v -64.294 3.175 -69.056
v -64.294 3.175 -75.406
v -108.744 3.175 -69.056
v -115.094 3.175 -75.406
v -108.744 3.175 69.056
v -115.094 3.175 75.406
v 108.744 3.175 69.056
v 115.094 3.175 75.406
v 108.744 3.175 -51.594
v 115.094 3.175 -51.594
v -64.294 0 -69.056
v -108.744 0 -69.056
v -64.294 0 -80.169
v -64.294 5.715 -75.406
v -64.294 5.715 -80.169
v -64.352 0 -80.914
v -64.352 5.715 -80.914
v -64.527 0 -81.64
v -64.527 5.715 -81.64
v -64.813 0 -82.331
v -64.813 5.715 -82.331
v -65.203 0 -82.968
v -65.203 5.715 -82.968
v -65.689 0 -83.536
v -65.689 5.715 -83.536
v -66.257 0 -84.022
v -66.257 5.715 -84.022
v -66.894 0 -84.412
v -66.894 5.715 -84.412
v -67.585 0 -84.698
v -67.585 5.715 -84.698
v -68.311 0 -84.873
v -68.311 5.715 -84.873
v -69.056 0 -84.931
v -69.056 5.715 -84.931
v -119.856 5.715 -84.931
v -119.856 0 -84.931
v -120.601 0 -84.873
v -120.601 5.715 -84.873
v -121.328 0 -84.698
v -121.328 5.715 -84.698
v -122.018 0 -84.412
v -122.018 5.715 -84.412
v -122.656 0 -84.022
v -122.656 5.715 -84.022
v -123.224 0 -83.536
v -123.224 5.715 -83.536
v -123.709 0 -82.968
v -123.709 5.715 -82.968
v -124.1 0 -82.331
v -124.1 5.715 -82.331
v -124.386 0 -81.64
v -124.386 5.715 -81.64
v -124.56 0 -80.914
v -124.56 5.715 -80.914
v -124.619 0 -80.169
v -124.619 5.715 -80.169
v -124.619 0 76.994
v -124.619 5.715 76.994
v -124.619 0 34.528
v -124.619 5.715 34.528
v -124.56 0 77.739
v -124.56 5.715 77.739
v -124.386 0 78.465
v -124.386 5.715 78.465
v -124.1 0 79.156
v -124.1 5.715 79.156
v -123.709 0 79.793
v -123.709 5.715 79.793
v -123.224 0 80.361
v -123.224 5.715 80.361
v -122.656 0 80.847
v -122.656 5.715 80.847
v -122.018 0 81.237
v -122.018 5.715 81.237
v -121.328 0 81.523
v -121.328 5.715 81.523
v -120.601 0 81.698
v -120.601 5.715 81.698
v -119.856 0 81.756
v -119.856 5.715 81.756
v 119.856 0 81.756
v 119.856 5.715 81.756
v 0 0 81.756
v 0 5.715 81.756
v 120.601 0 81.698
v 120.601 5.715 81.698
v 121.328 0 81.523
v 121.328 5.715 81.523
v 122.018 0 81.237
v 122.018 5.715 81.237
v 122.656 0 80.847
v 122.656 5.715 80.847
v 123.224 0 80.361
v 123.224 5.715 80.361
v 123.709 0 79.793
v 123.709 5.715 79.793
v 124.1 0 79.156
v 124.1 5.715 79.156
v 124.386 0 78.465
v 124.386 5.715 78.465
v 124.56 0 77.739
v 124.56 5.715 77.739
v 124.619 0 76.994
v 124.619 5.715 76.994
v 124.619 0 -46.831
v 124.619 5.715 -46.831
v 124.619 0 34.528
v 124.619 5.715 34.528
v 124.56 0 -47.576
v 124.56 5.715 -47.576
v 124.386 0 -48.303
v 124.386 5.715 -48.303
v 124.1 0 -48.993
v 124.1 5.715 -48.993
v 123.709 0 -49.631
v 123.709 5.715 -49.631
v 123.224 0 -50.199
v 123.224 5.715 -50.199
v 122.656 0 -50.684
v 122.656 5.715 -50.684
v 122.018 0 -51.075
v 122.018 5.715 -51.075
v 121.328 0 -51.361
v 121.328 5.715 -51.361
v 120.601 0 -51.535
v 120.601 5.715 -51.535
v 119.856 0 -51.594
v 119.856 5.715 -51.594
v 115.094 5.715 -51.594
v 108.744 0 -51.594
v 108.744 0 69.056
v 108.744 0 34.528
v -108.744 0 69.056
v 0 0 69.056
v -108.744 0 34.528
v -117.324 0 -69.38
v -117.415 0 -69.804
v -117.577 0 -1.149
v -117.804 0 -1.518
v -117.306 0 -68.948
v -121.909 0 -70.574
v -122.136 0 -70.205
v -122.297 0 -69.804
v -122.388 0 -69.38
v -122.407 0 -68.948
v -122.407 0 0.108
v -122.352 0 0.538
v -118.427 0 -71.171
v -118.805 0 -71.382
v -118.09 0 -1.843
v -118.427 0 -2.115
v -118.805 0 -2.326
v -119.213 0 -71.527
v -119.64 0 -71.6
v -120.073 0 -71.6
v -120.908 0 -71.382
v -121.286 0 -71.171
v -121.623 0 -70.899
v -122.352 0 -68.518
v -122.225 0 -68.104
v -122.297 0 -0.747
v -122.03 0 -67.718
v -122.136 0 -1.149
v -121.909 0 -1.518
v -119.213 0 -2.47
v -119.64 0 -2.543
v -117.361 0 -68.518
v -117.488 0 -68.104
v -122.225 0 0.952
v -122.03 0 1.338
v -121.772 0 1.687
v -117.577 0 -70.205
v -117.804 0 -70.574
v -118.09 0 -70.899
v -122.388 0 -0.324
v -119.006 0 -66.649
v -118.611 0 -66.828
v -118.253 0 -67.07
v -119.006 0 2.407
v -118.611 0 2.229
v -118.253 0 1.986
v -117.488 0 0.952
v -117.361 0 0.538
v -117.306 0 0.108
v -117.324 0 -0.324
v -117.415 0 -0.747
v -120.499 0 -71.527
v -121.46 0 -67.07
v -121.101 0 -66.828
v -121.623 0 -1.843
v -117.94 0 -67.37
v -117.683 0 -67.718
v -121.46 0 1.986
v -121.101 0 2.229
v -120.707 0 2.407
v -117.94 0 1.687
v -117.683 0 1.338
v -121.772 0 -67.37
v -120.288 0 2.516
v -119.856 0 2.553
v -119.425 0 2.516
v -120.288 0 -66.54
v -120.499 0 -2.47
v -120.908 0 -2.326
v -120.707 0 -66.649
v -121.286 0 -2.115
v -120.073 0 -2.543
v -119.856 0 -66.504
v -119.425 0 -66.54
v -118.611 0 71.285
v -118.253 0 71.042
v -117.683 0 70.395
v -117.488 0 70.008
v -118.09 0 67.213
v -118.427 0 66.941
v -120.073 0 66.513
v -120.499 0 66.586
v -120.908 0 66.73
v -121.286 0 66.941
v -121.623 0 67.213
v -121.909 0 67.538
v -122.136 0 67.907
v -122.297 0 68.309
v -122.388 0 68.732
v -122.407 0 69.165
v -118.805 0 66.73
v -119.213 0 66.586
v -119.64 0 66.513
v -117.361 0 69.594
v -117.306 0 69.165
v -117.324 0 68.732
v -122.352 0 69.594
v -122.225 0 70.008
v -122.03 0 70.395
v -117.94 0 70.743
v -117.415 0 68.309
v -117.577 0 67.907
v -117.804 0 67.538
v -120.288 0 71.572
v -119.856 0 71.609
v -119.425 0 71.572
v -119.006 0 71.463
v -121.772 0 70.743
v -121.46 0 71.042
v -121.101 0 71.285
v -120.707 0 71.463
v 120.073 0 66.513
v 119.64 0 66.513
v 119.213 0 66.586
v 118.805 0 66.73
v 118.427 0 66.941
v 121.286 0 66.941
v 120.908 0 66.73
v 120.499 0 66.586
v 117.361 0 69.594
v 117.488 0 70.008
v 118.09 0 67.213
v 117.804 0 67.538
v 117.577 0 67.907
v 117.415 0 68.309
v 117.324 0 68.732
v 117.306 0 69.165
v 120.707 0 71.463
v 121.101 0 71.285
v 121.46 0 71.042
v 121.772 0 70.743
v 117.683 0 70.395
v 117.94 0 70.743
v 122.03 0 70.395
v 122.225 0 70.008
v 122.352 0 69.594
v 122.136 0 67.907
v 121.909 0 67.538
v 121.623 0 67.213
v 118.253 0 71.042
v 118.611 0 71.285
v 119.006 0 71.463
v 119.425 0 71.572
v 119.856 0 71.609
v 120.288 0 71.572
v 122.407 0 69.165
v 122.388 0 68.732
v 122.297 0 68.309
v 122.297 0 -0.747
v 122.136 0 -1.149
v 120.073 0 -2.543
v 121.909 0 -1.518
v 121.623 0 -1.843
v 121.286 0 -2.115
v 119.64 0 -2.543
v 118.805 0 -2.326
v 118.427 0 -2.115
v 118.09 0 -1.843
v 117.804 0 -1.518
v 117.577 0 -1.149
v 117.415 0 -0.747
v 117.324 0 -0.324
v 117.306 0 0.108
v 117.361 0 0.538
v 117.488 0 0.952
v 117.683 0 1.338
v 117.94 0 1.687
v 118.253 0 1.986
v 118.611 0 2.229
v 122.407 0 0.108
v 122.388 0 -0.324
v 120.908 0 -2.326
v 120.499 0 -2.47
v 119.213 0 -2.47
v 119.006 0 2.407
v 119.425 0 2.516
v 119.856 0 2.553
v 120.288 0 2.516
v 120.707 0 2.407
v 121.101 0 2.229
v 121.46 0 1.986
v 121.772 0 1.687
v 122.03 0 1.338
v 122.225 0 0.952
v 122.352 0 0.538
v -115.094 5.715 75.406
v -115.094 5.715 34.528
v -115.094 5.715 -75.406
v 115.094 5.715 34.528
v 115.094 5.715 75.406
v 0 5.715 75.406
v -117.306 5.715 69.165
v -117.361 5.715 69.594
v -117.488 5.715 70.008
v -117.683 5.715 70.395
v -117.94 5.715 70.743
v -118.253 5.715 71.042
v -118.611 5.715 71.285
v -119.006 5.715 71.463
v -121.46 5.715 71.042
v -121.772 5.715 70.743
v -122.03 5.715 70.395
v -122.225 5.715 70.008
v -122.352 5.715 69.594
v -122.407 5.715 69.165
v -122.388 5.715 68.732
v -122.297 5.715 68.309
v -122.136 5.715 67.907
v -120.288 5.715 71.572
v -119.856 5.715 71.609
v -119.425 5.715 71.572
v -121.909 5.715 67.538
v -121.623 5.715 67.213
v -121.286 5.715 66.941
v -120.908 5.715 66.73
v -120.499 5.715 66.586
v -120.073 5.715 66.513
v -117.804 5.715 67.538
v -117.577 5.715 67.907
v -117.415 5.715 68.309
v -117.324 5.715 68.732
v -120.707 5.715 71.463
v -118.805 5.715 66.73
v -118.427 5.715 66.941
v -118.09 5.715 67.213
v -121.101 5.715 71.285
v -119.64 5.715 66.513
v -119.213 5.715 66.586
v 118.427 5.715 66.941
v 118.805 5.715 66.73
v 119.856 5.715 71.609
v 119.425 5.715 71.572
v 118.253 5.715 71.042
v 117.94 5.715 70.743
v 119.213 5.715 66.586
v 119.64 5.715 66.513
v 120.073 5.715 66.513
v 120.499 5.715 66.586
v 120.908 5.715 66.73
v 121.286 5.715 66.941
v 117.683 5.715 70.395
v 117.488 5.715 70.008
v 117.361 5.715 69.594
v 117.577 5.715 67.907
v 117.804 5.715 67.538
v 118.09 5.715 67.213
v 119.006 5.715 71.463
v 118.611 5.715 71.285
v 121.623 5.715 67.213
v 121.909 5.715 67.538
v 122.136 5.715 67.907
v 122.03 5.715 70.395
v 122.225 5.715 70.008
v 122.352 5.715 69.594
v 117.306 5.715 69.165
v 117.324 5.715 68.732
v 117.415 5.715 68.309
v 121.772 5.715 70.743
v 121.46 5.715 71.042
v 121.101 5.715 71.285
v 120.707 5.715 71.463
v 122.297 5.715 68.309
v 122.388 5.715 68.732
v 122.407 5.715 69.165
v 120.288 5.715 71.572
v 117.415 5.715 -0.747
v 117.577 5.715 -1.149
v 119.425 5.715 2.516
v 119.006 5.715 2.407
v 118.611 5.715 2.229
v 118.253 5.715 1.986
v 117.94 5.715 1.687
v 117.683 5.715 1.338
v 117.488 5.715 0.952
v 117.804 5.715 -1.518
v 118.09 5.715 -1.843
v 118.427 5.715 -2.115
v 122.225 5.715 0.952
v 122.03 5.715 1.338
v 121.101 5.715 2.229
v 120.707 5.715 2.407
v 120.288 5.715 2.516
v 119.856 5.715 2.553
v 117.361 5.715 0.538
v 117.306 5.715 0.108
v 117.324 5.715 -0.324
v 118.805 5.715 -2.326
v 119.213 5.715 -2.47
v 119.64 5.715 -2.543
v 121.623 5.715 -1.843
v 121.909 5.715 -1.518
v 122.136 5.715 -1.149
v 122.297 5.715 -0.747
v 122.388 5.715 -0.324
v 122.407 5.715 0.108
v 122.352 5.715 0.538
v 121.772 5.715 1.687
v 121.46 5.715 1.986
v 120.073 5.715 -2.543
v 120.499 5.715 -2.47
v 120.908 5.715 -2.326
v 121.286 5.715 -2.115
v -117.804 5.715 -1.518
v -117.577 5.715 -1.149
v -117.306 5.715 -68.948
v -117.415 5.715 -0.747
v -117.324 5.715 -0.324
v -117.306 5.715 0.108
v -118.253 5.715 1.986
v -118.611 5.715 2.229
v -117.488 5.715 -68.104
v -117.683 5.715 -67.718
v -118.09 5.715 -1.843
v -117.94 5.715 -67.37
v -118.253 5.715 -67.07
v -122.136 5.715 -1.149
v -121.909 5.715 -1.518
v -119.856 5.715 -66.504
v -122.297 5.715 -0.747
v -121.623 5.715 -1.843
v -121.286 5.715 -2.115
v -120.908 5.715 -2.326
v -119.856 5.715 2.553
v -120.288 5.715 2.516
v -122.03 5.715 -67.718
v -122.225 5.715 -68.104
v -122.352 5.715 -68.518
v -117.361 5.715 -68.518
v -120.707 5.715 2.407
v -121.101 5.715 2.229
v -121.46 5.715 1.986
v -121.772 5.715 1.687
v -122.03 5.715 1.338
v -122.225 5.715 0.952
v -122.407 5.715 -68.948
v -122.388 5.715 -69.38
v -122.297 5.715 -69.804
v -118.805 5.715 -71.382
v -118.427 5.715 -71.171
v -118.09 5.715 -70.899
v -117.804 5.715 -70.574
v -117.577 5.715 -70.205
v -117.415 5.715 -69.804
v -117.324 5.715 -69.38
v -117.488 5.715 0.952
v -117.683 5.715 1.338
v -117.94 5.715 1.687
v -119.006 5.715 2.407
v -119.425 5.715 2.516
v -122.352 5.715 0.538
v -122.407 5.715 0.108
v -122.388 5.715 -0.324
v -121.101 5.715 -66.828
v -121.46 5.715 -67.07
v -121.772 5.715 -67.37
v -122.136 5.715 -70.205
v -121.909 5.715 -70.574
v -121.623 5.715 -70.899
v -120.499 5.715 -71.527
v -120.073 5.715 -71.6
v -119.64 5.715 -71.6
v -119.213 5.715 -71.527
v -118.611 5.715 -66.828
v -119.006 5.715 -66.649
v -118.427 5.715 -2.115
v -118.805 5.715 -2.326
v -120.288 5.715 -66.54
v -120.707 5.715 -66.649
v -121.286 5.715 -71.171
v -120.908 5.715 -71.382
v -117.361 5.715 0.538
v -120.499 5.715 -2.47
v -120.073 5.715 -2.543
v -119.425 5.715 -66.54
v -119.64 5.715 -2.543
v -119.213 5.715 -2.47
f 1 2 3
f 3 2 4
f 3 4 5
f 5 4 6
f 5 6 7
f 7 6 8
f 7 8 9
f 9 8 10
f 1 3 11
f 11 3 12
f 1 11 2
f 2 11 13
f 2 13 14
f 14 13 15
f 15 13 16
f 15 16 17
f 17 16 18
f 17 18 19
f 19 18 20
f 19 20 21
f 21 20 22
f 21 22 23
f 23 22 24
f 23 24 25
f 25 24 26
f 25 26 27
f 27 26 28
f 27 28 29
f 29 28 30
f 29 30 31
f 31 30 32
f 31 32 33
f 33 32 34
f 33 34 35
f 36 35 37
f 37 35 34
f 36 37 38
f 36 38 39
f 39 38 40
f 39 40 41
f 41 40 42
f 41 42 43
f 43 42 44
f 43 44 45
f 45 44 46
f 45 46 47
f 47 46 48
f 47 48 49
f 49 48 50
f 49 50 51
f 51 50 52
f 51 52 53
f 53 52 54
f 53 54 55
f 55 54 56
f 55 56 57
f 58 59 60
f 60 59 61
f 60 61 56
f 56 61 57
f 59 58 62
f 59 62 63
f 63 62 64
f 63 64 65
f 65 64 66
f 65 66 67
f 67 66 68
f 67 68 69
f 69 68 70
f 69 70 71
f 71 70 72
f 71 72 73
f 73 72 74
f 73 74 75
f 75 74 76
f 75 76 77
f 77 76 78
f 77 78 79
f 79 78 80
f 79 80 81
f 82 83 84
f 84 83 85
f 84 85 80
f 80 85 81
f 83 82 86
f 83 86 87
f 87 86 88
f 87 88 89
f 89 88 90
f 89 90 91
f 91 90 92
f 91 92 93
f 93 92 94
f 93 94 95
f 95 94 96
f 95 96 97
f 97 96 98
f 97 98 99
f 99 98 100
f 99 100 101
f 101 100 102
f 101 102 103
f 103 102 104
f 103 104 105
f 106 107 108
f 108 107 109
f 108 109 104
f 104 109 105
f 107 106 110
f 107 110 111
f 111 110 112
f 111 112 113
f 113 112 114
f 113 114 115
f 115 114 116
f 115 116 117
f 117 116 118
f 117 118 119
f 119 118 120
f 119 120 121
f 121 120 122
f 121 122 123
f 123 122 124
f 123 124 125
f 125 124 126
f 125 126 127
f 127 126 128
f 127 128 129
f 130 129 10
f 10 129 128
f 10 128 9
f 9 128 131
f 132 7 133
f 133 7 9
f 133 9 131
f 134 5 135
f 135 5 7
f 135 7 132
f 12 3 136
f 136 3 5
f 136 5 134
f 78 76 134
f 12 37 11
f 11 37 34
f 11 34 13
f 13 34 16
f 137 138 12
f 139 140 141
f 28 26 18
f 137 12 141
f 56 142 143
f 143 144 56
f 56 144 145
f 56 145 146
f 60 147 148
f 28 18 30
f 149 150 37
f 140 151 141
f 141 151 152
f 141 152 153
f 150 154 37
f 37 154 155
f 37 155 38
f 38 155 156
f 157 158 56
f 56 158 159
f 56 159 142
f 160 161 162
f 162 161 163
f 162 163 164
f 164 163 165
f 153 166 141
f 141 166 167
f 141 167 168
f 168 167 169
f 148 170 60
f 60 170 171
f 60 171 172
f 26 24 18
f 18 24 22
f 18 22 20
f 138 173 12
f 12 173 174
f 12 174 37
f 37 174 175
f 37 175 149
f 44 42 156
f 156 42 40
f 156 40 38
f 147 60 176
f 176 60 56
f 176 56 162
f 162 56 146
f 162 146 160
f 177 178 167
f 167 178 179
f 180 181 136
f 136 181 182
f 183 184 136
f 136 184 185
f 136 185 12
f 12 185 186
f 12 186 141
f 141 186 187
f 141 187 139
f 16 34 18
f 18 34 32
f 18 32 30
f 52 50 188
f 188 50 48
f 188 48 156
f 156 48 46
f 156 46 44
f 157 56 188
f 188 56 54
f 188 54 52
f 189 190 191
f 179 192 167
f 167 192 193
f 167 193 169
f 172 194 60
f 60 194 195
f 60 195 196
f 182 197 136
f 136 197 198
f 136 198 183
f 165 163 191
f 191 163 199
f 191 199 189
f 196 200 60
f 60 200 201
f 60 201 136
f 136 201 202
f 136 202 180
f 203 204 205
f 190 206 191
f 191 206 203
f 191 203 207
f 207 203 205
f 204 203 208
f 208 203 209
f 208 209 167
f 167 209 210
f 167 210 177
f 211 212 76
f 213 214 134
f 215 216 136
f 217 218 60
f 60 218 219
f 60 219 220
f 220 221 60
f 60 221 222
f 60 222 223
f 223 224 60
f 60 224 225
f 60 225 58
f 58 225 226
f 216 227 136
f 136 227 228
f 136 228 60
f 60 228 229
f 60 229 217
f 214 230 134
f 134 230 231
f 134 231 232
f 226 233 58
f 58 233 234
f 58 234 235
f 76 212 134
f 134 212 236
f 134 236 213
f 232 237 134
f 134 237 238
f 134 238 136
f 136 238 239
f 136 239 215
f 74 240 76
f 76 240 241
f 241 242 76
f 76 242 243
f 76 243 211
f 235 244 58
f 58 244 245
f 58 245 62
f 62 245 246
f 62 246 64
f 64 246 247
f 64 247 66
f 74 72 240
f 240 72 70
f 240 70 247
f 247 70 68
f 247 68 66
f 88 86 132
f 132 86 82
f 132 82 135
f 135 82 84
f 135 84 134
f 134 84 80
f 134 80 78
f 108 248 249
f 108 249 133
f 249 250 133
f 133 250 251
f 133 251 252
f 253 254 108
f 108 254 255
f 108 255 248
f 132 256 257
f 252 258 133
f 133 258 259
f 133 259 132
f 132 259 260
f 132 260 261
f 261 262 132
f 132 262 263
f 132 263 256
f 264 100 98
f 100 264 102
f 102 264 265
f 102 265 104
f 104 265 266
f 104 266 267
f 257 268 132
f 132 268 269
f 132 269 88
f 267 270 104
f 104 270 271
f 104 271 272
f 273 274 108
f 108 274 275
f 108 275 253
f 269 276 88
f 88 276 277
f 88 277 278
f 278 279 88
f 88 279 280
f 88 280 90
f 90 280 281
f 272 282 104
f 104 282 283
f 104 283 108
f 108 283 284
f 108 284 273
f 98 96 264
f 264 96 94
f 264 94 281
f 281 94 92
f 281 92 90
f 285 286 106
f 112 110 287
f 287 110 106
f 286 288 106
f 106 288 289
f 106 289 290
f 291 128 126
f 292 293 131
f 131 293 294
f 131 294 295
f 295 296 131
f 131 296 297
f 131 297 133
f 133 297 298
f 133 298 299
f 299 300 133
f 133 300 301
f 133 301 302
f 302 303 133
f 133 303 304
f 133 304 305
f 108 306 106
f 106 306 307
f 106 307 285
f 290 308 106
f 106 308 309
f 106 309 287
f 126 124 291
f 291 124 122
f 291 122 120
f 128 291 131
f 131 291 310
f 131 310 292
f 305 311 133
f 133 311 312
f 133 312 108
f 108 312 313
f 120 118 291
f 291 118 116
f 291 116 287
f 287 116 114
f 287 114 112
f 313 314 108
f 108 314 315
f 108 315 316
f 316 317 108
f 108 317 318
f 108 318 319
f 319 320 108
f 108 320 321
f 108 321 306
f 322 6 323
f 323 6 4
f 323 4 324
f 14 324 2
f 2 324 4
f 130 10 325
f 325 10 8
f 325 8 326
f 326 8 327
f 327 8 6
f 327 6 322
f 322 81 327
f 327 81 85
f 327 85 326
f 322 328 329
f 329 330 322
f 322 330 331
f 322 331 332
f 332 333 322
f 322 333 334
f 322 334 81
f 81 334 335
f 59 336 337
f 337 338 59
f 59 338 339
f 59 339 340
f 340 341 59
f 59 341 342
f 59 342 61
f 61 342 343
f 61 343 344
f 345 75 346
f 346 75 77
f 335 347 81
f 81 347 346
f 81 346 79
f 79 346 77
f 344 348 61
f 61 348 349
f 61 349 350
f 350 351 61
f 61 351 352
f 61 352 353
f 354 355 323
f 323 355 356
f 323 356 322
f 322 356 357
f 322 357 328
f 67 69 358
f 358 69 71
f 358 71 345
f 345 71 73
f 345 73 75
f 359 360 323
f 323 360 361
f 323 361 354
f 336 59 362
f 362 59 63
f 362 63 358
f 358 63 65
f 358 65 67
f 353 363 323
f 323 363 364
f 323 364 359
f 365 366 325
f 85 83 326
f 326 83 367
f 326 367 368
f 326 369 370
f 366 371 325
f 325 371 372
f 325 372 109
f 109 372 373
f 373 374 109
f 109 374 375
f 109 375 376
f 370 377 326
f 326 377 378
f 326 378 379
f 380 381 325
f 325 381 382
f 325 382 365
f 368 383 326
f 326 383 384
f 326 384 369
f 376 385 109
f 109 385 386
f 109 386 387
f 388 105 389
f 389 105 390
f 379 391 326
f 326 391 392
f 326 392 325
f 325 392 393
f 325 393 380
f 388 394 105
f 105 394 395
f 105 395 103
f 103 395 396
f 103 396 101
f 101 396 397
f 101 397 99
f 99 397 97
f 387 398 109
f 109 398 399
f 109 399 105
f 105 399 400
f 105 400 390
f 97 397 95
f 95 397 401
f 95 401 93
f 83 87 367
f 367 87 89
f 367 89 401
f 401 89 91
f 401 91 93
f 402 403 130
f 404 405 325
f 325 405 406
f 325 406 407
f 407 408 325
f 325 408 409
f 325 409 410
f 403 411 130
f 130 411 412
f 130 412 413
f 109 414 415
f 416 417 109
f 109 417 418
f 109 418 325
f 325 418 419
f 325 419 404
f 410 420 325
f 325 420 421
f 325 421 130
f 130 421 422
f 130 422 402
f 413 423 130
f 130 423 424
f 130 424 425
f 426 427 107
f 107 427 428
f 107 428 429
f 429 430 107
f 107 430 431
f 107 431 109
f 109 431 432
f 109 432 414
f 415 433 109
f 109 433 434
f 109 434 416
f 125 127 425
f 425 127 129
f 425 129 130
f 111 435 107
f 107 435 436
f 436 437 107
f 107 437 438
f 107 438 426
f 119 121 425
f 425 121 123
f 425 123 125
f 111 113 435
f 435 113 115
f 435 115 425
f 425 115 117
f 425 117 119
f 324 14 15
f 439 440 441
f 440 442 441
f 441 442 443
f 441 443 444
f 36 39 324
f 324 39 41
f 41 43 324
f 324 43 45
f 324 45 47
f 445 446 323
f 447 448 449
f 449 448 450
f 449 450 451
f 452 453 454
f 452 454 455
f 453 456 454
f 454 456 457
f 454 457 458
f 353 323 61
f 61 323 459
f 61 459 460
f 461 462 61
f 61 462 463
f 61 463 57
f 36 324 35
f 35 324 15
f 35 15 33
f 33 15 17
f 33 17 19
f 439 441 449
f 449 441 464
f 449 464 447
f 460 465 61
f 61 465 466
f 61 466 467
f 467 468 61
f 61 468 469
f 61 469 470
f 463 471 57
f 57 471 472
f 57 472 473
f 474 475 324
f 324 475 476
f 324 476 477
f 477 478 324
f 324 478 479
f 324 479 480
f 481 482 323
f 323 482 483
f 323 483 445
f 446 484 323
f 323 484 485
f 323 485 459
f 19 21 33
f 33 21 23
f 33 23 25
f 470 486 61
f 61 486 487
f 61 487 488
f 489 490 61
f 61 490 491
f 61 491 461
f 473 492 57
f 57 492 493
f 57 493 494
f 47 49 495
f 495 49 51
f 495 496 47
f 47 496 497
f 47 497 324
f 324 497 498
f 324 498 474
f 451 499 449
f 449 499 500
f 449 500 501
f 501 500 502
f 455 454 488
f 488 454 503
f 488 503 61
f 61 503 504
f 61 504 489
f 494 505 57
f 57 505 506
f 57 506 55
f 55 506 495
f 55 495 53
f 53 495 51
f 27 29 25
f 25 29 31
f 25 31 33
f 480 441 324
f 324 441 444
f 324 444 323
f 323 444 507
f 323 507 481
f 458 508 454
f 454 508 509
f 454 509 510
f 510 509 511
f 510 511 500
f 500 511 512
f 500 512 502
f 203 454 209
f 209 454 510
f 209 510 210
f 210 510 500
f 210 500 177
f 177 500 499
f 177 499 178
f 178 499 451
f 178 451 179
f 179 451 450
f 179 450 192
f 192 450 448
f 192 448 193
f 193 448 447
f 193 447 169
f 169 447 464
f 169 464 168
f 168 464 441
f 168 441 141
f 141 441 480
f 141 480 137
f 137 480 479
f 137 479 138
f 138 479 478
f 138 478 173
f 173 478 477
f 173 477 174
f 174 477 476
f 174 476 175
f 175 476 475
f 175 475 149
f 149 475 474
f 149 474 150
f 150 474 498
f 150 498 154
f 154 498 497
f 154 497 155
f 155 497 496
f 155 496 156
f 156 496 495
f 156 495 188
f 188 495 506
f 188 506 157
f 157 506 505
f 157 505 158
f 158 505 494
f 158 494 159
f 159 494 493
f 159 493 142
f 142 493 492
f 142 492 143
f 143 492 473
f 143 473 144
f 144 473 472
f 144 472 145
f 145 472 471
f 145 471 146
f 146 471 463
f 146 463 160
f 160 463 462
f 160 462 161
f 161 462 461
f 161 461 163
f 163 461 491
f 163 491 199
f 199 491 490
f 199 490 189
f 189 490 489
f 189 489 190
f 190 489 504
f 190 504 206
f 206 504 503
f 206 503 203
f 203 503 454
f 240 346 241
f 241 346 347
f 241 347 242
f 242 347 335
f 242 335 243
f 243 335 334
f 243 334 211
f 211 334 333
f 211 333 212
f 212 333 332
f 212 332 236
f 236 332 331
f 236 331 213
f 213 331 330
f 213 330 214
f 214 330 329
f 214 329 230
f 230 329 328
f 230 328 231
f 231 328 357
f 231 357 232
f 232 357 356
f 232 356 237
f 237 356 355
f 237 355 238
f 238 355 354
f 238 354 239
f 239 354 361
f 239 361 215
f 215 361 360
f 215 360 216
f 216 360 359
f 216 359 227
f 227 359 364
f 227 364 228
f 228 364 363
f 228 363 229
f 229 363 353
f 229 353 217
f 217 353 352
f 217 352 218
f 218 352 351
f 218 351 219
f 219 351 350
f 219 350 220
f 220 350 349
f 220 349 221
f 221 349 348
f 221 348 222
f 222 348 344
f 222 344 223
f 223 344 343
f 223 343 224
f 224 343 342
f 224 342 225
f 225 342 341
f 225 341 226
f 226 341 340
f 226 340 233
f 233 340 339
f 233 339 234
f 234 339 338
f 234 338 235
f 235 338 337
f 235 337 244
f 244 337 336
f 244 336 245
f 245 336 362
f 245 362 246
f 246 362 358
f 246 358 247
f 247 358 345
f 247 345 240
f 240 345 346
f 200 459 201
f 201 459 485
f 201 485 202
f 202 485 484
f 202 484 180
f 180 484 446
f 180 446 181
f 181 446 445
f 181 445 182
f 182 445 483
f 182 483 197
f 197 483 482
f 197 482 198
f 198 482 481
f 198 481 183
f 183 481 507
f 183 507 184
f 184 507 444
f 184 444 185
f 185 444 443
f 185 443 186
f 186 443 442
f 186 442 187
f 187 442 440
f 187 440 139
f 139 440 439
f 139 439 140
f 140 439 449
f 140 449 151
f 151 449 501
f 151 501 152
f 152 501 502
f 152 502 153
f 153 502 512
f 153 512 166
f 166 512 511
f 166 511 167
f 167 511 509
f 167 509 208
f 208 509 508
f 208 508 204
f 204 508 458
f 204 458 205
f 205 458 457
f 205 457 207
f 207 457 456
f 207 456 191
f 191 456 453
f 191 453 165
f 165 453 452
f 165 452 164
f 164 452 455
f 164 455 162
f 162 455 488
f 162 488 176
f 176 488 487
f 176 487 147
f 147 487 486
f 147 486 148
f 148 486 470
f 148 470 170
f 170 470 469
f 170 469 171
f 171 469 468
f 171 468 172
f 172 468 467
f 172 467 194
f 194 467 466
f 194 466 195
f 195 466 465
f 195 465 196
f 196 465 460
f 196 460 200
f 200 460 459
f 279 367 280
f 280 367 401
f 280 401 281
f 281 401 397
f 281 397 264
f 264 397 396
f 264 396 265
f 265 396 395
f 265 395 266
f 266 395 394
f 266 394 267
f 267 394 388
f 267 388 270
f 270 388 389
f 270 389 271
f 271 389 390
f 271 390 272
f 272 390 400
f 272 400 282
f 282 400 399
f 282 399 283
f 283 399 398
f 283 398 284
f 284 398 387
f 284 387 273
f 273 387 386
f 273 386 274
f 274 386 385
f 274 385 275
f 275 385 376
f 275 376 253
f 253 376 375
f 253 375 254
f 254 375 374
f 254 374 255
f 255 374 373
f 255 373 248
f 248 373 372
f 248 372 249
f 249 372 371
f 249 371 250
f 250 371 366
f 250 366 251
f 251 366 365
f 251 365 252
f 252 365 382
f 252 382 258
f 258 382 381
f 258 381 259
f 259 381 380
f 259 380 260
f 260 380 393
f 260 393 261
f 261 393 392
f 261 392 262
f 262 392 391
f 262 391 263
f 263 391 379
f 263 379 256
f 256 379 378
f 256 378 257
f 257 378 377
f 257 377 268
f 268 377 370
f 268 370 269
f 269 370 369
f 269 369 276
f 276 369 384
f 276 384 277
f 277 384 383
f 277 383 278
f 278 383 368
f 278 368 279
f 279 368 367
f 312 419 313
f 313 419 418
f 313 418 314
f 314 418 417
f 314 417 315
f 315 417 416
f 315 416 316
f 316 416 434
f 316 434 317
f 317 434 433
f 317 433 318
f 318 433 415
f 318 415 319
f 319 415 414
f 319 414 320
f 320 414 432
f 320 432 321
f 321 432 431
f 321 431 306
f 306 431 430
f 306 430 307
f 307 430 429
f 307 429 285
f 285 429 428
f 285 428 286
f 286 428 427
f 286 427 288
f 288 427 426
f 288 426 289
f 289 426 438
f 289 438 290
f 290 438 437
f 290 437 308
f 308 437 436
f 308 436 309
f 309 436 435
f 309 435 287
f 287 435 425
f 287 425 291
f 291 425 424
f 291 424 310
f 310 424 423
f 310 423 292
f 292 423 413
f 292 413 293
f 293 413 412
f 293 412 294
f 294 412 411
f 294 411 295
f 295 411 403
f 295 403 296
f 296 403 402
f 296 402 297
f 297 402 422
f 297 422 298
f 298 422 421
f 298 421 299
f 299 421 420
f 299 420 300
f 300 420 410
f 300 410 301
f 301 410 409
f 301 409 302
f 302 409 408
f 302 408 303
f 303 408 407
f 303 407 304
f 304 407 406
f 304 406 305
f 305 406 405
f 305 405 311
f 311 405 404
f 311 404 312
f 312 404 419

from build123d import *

# Parameters (mm, degrees)
BOSS_EXTRUDE1_DEPTH = 3.175
BOSS_EXTRUDE2_DEPTH = 2.54
SKETCH3_R           = 2.5527
CUT_EXTRUDE1_DEPTH  = 153.360472739


with BuildPart() as part:
    # Sketch1 → Boss-Extrude1 (new body)
    with BuildSketch(Plane(origin=(0, 0, 0), x_dir=(1, 0, 0), z_dir=(0, 1, 0))):
        with BuildLine():
            Line((-64.29375, 80.16875), (-64.29375, 69.05625))
            Line((-64.29375, 69.05625), (-108.74375, 69.05625))
            Line((-108.74375, 69.05625), (-108.74375, -69.05625))
            Line((-108.74375, -69.05625), (108.74375, -69.05625))
            Line((108.74375, -69.05625), (108.74375, 51.59375))
            Line((108.74375, 51.59375), (119.85625, 51.59375))
            ThreePointArc((119.85625, 51.59375), (123.223846045, 50.198846045), (124.61875, 46.83125))
            Line((124.61875, 46.83125), (124.61875, -76.99375))
            ThreePointArc((124.61875, -76.99375), (123.223846045, -80.361346045), (119.85625, -81.75625))
            Line((119.85625, -81.75625), (-119.85625, -81.75625))
            ThreePointArc((-119.85625, -81.75625), (-123.223846045, -80.361346045), (-124.61875, -76.99375))
            Line((-124.61875, -76.99375), (-124.61875, 80.16875))
            ThreePointArc((-124.61875, 80.16875), (-123.223846045, 83.536346045), (-119.85625, 84.93125))
            Line((-119.85625, 84.93125), (-69.05625, 84.93125))
            ThreePointArc((-69.05625, 84.93125), (-65.688653955, 83.536346045), (-64.29375, 80.16875))
        make_face()
    extrude(amount=BOSS_EXTRUDE1_DEPTH)

    # Sketch2 → Boss-Extrude2 (add)
    with BuildSketch(Plane(origin=(0, 3.175, 0), x_dir=(1, 0, 0), z_dir=(0, 1, 0))):
        with BuildLine():
            Line((-64.29375, 80.16875), (-64.29375, 75.40625))
            Line((-64.29375, 75.40625), (-115.09375, 75.40625))
            Line((-115.09375, 75.40625), (-115.09375, -75.40625))
            Line((-115.09375, -75.40625), (115.09375, -75.40625))
            Line((115.09375, -75.40625), (115.09375, 51.59375))
            Line((115.09375, 51.59375), (119.85625, 51.59375))
            ThreePointArc((119.85625, 51.59375), (123.223846045, 50.198846045), (124.61875, 46.83125))
            Line((124.61875, 46.83125), (124.61875, -76.99375))
            ThreePointArc((124.61875, -76.99375), (123.223846045, -80.361346045), (119.85625, -81.75625))
            Line((119.85625, -81.75625), (-119.85625, -81.75625))
            ThreePointArc((-119.85625, -81.75625), (-123.223846045, -80.361346045), (-124.61875, -76.99375))
            Line((-124.61875, -76.99375), (-124.61875, 80.16875))
            ThreePointArc((-124.61875, 80.16875), (-123.223846045, 83.536346045), (-119.85625, 84.93125))
            Line((-119.85625, 84.93125), (-69.05625, 84.93125))
            ThreePointArc((-69.05625, 84.93125), (-65.688653955, 83.536346045), (-64.29375, 80.16875))
        make_face()
    extrude(amount=BOSS_EXTRUDE2_DEPTH)

    # Sketch3 → Cut-Extrude1 (cut, through all)
    with BuildSketch(Plane(origin=(0, 5.715, -5.715), x_dir=(-1, 0, 0), z_dir=(0, 1, 0))):
        with Locations(Location((119.85625, -63.34125, 0), (0, 0, 90))):
            Circle(SKETCH3_R)
        with Locations(Location((119.85625, 74.77125, 0), (0, 0, 90))):
            Circle(SKETCH3_R)
        with Locations(Location((119.85625, 5.715, 0), (0, 0, 90))):
            Circle(SKETCH3_R)
        with Locations(Location((-119.85625, 74.77125, 0), (0, 0, 90))):
            Circle(SKETCH3_R)
        with Locations(Location((-119.85625, 5.715, 0), (0, 0, 90))):
            Circle(SKETCH3_R)
    extrude(amount=-CUT_EXTRUDE1_DEPTH, mode=Mode.SUBTRACT)


solid = part.part
